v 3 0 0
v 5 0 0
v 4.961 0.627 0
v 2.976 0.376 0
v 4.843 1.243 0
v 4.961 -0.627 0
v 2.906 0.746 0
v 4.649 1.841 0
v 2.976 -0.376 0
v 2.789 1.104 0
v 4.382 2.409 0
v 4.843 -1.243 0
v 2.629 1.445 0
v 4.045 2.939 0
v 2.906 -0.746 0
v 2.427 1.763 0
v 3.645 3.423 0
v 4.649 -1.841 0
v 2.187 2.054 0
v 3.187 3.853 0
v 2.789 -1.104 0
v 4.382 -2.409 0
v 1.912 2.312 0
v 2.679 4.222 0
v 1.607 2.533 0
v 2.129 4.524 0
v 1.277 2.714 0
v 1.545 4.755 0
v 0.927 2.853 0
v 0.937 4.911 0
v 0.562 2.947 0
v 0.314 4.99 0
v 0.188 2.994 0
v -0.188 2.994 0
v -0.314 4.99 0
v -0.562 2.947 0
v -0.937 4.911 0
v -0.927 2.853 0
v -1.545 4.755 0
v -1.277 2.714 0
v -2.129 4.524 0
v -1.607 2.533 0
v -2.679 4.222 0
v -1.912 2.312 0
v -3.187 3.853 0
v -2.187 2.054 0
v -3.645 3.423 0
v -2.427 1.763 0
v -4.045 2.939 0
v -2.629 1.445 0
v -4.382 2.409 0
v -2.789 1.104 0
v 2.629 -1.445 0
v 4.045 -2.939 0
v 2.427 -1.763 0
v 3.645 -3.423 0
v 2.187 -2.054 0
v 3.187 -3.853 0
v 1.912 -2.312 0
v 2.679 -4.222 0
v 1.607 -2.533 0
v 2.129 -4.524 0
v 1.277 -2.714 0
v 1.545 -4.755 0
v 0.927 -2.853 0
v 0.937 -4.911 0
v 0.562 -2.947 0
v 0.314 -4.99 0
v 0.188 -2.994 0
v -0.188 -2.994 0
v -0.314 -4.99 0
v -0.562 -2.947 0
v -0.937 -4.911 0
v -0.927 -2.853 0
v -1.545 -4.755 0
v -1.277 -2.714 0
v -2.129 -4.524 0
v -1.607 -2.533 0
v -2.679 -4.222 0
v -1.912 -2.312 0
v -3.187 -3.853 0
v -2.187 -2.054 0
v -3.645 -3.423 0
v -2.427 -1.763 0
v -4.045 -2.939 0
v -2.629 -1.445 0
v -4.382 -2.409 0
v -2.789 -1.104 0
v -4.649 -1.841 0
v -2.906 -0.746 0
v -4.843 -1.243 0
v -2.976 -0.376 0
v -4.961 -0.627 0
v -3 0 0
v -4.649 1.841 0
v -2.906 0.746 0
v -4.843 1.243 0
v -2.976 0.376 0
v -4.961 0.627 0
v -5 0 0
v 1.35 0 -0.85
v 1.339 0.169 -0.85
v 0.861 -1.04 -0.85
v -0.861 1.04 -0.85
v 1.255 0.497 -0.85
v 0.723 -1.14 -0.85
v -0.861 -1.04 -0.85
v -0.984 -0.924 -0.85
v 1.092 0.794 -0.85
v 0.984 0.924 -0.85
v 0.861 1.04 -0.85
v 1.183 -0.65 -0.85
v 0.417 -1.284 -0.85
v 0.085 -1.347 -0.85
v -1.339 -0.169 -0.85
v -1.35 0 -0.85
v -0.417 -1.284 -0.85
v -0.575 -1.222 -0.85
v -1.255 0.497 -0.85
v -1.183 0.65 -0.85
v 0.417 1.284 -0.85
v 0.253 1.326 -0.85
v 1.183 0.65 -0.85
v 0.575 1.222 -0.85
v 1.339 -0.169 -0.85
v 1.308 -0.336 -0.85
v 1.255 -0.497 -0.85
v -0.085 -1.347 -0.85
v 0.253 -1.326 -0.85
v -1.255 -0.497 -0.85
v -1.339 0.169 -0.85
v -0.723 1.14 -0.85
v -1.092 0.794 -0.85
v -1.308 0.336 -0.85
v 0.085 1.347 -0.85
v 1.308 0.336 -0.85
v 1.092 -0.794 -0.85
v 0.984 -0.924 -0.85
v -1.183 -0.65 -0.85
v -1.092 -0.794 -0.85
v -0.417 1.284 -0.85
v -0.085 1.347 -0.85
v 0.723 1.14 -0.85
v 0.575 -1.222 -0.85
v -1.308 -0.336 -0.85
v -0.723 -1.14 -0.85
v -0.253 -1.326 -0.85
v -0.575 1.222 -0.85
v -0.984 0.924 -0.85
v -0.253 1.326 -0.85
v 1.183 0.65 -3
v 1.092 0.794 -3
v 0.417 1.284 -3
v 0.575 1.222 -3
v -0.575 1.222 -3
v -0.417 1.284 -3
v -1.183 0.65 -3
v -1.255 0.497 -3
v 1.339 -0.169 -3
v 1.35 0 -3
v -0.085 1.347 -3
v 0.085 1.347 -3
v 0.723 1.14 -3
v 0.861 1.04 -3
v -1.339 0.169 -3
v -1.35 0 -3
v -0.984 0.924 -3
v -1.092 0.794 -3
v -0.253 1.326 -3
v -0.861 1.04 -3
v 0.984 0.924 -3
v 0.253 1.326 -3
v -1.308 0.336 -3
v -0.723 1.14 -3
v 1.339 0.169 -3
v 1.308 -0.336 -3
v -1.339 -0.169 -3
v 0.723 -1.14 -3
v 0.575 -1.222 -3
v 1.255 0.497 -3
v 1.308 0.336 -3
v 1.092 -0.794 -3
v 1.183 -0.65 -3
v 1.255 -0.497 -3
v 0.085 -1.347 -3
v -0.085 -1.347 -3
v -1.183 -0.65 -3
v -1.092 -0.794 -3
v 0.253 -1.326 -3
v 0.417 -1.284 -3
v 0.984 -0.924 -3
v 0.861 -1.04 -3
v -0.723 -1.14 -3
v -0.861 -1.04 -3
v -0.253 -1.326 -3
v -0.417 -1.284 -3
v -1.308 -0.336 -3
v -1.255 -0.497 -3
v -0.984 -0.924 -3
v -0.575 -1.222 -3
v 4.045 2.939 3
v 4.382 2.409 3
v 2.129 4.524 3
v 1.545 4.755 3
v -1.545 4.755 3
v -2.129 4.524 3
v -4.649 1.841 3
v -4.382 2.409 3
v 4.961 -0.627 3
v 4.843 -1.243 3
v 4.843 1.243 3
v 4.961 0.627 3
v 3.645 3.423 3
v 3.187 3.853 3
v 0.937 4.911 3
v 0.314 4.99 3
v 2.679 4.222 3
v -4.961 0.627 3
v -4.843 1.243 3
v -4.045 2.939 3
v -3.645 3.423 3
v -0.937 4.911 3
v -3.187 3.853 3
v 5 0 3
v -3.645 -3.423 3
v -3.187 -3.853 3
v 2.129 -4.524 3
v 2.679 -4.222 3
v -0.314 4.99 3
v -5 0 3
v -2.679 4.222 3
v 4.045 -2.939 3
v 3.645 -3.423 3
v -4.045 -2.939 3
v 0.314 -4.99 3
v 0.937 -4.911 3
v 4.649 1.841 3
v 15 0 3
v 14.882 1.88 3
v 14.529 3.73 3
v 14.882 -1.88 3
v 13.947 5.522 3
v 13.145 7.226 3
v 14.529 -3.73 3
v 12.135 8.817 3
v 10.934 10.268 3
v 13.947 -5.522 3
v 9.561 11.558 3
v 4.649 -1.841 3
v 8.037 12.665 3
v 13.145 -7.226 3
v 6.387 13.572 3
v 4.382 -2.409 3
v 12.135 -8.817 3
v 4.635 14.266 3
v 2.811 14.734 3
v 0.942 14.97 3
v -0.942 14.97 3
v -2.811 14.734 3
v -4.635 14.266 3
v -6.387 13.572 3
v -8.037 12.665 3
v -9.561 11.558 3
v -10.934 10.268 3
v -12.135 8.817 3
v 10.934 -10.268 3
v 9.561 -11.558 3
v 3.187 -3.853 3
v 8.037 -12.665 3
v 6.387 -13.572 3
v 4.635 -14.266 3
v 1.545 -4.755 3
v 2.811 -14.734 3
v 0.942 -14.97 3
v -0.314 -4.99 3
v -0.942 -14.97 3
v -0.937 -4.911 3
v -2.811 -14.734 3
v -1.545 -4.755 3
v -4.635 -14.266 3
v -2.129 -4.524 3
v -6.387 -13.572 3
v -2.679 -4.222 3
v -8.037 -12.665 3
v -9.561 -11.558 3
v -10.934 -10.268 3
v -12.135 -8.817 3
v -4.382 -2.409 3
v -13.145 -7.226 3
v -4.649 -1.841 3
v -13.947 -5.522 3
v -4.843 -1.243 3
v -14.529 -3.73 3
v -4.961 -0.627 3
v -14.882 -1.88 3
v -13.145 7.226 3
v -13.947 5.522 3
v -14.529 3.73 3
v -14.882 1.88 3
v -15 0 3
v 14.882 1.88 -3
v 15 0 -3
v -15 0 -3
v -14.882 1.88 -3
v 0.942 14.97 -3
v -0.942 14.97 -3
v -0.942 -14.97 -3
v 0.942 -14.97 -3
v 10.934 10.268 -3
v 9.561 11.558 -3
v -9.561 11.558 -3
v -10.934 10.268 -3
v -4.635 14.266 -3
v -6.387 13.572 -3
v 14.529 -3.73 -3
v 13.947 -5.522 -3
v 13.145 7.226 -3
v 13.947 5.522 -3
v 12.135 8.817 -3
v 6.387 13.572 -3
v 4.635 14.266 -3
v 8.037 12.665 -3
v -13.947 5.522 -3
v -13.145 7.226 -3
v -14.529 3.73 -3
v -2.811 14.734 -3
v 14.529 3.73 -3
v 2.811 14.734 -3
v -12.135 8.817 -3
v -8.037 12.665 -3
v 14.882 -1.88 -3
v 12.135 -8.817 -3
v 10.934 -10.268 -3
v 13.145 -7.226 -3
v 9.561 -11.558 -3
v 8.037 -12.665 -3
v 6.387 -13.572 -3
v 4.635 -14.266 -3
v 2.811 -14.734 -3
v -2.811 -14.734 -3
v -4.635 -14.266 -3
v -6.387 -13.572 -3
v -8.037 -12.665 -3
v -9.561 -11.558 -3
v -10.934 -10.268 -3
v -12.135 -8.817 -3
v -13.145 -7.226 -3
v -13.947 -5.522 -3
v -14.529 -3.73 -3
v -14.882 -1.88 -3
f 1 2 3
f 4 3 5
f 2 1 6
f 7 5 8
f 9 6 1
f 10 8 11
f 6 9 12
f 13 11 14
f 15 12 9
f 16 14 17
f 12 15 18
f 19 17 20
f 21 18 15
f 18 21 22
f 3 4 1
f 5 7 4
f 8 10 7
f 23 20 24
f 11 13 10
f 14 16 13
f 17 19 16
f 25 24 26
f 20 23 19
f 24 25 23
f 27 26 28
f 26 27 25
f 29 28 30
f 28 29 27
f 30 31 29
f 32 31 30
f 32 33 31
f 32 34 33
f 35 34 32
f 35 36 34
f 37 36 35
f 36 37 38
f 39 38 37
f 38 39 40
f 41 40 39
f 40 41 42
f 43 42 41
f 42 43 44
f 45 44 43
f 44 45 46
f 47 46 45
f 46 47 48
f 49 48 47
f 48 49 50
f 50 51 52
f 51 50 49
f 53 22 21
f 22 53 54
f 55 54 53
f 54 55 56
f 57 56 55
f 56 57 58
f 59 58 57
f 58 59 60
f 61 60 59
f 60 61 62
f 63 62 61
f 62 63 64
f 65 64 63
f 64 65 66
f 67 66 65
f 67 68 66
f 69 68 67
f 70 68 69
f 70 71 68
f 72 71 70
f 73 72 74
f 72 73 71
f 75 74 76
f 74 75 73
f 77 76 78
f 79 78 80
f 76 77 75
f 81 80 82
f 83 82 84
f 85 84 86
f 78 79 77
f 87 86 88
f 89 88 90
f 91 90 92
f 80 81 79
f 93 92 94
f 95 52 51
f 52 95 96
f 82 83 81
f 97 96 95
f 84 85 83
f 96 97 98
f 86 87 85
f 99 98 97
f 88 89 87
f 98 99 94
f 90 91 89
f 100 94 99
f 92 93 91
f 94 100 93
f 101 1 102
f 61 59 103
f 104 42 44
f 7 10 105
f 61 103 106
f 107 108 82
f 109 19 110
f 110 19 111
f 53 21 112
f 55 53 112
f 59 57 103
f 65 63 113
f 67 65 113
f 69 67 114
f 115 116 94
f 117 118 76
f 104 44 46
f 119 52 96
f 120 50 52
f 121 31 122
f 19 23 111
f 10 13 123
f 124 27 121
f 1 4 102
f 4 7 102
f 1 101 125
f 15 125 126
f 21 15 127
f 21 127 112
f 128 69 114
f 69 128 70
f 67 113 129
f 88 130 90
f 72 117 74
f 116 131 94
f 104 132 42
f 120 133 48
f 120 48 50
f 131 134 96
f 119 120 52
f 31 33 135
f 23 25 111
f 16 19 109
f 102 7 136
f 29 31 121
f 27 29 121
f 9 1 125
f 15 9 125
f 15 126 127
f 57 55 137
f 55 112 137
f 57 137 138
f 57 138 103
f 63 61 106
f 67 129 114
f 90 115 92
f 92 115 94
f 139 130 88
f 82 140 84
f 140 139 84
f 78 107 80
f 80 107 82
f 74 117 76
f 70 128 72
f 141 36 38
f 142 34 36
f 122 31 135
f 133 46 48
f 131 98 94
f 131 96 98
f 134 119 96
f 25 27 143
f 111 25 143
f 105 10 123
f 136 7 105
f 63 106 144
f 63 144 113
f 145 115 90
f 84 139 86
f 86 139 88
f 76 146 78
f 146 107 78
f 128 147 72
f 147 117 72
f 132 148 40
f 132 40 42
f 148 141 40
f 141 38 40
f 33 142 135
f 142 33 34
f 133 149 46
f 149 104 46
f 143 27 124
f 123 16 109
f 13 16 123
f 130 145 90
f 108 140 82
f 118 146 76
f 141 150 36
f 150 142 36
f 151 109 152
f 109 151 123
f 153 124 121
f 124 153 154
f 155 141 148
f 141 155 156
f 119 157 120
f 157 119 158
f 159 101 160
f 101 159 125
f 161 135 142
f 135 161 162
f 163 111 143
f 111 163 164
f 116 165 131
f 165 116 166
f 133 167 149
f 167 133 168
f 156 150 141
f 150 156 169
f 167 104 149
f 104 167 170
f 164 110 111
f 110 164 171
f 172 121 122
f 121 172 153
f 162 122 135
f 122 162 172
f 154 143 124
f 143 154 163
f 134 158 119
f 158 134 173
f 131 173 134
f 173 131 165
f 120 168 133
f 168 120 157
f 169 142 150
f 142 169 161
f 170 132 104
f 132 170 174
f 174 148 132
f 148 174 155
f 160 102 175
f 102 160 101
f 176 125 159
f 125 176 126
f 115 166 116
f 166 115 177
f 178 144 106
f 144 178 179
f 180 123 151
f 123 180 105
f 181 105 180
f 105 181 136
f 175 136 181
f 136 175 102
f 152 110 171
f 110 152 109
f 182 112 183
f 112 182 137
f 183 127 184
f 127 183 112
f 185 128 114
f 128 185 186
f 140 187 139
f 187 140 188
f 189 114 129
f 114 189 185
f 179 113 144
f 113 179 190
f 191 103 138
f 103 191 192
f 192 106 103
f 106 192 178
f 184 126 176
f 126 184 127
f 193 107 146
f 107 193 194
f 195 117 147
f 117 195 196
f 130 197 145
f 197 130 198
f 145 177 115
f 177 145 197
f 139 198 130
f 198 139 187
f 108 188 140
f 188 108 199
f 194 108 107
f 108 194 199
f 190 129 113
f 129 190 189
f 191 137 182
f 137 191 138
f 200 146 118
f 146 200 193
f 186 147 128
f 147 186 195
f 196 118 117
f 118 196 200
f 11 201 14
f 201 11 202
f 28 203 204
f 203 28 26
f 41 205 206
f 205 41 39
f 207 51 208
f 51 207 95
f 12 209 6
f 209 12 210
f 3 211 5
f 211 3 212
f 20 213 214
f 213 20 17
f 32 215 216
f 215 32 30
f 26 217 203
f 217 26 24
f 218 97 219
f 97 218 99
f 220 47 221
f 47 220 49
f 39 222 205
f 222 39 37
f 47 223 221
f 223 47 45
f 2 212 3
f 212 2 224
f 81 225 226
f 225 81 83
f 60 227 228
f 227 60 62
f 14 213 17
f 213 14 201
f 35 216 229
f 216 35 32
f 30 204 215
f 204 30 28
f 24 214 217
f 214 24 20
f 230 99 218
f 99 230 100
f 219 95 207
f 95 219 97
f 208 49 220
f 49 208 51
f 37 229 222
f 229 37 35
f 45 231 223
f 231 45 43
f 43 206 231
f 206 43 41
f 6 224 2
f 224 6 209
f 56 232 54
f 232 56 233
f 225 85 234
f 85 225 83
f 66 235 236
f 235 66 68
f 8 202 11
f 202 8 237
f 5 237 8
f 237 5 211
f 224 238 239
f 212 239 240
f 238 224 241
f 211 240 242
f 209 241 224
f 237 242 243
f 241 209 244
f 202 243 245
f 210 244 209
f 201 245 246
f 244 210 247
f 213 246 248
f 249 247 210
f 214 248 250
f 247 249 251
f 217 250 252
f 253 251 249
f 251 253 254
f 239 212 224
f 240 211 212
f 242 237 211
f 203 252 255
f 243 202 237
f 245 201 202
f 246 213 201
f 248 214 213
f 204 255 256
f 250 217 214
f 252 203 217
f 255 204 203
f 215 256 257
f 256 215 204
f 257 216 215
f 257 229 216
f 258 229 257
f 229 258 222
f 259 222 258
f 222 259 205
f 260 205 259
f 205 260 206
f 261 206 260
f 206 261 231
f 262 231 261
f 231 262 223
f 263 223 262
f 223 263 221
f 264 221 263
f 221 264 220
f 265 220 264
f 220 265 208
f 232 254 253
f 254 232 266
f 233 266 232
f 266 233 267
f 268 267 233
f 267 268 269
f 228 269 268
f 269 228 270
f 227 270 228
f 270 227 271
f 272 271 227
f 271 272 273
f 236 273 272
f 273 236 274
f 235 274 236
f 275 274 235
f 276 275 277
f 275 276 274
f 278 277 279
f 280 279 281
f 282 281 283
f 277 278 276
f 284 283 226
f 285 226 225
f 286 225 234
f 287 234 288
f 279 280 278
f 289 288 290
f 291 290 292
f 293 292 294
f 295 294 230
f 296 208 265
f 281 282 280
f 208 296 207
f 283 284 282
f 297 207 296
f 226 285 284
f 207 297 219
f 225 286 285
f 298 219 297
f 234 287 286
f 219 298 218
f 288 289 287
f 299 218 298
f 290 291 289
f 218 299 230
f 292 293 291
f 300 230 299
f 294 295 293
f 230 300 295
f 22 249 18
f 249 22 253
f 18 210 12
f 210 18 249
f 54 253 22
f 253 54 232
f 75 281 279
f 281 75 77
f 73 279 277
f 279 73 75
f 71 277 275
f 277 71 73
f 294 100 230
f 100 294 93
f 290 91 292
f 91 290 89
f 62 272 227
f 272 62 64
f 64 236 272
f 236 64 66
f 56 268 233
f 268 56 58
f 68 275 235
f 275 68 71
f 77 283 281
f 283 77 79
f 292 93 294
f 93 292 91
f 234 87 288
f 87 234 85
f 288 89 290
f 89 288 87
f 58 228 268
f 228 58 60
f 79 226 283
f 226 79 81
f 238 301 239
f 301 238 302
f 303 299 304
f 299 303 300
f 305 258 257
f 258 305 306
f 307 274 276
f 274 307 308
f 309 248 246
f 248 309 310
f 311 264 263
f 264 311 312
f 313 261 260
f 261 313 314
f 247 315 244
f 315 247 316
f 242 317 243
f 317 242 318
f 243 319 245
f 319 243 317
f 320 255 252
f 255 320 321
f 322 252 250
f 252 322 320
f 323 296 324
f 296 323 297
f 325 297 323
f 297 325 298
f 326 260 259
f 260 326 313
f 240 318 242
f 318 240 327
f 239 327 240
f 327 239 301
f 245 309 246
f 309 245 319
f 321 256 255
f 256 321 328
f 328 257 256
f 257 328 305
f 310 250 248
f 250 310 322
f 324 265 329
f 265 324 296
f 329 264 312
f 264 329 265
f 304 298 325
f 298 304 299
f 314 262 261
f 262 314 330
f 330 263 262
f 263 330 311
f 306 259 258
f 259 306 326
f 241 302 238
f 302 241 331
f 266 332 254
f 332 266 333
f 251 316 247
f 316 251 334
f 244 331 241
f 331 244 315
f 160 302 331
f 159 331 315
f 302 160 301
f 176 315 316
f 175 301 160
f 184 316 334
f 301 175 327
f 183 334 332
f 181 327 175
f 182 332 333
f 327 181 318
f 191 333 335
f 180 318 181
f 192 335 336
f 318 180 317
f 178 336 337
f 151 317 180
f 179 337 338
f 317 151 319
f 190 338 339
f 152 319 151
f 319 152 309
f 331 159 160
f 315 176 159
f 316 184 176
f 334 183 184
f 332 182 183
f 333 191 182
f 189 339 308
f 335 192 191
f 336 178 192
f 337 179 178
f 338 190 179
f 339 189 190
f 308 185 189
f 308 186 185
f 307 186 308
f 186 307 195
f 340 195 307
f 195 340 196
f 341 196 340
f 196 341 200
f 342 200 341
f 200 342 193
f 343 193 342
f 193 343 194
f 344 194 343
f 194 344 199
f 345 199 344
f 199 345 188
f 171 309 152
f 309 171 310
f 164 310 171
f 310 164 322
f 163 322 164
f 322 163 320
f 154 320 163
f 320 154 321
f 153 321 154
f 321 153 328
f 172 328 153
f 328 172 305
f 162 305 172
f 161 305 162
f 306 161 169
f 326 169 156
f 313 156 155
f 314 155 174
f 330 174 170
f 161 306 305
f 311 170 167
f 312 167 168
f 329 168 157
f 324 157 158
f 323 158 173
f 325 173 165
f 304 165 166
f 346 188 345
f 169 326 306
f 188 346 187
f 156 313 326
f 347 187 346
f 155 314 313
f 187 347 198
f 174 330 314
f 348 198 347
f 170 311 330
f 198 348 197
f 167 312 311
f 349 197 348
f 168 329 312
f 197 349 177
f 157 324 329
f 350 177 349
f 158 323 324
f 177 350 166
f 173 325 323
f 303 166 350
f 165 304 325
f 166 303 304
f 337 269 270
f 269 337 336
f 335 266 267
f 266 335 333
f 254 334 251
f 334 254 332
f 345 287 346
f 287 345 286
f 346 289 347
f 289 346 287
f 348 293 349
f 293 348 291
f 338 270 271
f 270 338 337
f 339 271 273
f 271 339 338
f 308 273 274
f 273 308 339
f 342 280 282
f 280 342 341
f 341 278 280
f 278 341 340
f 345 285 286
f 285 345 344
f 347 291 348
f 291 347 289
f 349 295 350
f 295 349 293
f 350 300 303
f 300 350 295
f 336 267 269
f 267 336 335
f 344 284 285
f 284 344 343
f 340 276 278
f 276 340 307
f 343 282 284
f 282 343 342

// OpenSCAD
$fn = 50;

difference() {
	union() {
		translate(v = [0, 0, -3.0]) {
			cylinder(h = 6, r = 15.0);
		}
	}
	union() {
		translate(v = [0, 0, 0]) {
			rotate(a = [0, 0, 0]) {
				difference() {
					union() {
						translate(v = [0, 0, -6.0]) {
							cylinder(h = 6, r = 1.0);
						}
						translate(v = [0, 0, -0.85]) {
							cylinder(h = 0.85, r1 = 1.35, r2 = 3.0);
						}
						translate(v = [0, 0, -6.0]) {
							cylinder(h = 6, r = 1.35);
						}
						translate(v = [0, 0, -6.0]) {
							cylinder(h = 6, r = 1.0);
						}
					}
					union();
				}
			}
		}
		#cylinder(h = 3, r = 5.0);
	}
}
